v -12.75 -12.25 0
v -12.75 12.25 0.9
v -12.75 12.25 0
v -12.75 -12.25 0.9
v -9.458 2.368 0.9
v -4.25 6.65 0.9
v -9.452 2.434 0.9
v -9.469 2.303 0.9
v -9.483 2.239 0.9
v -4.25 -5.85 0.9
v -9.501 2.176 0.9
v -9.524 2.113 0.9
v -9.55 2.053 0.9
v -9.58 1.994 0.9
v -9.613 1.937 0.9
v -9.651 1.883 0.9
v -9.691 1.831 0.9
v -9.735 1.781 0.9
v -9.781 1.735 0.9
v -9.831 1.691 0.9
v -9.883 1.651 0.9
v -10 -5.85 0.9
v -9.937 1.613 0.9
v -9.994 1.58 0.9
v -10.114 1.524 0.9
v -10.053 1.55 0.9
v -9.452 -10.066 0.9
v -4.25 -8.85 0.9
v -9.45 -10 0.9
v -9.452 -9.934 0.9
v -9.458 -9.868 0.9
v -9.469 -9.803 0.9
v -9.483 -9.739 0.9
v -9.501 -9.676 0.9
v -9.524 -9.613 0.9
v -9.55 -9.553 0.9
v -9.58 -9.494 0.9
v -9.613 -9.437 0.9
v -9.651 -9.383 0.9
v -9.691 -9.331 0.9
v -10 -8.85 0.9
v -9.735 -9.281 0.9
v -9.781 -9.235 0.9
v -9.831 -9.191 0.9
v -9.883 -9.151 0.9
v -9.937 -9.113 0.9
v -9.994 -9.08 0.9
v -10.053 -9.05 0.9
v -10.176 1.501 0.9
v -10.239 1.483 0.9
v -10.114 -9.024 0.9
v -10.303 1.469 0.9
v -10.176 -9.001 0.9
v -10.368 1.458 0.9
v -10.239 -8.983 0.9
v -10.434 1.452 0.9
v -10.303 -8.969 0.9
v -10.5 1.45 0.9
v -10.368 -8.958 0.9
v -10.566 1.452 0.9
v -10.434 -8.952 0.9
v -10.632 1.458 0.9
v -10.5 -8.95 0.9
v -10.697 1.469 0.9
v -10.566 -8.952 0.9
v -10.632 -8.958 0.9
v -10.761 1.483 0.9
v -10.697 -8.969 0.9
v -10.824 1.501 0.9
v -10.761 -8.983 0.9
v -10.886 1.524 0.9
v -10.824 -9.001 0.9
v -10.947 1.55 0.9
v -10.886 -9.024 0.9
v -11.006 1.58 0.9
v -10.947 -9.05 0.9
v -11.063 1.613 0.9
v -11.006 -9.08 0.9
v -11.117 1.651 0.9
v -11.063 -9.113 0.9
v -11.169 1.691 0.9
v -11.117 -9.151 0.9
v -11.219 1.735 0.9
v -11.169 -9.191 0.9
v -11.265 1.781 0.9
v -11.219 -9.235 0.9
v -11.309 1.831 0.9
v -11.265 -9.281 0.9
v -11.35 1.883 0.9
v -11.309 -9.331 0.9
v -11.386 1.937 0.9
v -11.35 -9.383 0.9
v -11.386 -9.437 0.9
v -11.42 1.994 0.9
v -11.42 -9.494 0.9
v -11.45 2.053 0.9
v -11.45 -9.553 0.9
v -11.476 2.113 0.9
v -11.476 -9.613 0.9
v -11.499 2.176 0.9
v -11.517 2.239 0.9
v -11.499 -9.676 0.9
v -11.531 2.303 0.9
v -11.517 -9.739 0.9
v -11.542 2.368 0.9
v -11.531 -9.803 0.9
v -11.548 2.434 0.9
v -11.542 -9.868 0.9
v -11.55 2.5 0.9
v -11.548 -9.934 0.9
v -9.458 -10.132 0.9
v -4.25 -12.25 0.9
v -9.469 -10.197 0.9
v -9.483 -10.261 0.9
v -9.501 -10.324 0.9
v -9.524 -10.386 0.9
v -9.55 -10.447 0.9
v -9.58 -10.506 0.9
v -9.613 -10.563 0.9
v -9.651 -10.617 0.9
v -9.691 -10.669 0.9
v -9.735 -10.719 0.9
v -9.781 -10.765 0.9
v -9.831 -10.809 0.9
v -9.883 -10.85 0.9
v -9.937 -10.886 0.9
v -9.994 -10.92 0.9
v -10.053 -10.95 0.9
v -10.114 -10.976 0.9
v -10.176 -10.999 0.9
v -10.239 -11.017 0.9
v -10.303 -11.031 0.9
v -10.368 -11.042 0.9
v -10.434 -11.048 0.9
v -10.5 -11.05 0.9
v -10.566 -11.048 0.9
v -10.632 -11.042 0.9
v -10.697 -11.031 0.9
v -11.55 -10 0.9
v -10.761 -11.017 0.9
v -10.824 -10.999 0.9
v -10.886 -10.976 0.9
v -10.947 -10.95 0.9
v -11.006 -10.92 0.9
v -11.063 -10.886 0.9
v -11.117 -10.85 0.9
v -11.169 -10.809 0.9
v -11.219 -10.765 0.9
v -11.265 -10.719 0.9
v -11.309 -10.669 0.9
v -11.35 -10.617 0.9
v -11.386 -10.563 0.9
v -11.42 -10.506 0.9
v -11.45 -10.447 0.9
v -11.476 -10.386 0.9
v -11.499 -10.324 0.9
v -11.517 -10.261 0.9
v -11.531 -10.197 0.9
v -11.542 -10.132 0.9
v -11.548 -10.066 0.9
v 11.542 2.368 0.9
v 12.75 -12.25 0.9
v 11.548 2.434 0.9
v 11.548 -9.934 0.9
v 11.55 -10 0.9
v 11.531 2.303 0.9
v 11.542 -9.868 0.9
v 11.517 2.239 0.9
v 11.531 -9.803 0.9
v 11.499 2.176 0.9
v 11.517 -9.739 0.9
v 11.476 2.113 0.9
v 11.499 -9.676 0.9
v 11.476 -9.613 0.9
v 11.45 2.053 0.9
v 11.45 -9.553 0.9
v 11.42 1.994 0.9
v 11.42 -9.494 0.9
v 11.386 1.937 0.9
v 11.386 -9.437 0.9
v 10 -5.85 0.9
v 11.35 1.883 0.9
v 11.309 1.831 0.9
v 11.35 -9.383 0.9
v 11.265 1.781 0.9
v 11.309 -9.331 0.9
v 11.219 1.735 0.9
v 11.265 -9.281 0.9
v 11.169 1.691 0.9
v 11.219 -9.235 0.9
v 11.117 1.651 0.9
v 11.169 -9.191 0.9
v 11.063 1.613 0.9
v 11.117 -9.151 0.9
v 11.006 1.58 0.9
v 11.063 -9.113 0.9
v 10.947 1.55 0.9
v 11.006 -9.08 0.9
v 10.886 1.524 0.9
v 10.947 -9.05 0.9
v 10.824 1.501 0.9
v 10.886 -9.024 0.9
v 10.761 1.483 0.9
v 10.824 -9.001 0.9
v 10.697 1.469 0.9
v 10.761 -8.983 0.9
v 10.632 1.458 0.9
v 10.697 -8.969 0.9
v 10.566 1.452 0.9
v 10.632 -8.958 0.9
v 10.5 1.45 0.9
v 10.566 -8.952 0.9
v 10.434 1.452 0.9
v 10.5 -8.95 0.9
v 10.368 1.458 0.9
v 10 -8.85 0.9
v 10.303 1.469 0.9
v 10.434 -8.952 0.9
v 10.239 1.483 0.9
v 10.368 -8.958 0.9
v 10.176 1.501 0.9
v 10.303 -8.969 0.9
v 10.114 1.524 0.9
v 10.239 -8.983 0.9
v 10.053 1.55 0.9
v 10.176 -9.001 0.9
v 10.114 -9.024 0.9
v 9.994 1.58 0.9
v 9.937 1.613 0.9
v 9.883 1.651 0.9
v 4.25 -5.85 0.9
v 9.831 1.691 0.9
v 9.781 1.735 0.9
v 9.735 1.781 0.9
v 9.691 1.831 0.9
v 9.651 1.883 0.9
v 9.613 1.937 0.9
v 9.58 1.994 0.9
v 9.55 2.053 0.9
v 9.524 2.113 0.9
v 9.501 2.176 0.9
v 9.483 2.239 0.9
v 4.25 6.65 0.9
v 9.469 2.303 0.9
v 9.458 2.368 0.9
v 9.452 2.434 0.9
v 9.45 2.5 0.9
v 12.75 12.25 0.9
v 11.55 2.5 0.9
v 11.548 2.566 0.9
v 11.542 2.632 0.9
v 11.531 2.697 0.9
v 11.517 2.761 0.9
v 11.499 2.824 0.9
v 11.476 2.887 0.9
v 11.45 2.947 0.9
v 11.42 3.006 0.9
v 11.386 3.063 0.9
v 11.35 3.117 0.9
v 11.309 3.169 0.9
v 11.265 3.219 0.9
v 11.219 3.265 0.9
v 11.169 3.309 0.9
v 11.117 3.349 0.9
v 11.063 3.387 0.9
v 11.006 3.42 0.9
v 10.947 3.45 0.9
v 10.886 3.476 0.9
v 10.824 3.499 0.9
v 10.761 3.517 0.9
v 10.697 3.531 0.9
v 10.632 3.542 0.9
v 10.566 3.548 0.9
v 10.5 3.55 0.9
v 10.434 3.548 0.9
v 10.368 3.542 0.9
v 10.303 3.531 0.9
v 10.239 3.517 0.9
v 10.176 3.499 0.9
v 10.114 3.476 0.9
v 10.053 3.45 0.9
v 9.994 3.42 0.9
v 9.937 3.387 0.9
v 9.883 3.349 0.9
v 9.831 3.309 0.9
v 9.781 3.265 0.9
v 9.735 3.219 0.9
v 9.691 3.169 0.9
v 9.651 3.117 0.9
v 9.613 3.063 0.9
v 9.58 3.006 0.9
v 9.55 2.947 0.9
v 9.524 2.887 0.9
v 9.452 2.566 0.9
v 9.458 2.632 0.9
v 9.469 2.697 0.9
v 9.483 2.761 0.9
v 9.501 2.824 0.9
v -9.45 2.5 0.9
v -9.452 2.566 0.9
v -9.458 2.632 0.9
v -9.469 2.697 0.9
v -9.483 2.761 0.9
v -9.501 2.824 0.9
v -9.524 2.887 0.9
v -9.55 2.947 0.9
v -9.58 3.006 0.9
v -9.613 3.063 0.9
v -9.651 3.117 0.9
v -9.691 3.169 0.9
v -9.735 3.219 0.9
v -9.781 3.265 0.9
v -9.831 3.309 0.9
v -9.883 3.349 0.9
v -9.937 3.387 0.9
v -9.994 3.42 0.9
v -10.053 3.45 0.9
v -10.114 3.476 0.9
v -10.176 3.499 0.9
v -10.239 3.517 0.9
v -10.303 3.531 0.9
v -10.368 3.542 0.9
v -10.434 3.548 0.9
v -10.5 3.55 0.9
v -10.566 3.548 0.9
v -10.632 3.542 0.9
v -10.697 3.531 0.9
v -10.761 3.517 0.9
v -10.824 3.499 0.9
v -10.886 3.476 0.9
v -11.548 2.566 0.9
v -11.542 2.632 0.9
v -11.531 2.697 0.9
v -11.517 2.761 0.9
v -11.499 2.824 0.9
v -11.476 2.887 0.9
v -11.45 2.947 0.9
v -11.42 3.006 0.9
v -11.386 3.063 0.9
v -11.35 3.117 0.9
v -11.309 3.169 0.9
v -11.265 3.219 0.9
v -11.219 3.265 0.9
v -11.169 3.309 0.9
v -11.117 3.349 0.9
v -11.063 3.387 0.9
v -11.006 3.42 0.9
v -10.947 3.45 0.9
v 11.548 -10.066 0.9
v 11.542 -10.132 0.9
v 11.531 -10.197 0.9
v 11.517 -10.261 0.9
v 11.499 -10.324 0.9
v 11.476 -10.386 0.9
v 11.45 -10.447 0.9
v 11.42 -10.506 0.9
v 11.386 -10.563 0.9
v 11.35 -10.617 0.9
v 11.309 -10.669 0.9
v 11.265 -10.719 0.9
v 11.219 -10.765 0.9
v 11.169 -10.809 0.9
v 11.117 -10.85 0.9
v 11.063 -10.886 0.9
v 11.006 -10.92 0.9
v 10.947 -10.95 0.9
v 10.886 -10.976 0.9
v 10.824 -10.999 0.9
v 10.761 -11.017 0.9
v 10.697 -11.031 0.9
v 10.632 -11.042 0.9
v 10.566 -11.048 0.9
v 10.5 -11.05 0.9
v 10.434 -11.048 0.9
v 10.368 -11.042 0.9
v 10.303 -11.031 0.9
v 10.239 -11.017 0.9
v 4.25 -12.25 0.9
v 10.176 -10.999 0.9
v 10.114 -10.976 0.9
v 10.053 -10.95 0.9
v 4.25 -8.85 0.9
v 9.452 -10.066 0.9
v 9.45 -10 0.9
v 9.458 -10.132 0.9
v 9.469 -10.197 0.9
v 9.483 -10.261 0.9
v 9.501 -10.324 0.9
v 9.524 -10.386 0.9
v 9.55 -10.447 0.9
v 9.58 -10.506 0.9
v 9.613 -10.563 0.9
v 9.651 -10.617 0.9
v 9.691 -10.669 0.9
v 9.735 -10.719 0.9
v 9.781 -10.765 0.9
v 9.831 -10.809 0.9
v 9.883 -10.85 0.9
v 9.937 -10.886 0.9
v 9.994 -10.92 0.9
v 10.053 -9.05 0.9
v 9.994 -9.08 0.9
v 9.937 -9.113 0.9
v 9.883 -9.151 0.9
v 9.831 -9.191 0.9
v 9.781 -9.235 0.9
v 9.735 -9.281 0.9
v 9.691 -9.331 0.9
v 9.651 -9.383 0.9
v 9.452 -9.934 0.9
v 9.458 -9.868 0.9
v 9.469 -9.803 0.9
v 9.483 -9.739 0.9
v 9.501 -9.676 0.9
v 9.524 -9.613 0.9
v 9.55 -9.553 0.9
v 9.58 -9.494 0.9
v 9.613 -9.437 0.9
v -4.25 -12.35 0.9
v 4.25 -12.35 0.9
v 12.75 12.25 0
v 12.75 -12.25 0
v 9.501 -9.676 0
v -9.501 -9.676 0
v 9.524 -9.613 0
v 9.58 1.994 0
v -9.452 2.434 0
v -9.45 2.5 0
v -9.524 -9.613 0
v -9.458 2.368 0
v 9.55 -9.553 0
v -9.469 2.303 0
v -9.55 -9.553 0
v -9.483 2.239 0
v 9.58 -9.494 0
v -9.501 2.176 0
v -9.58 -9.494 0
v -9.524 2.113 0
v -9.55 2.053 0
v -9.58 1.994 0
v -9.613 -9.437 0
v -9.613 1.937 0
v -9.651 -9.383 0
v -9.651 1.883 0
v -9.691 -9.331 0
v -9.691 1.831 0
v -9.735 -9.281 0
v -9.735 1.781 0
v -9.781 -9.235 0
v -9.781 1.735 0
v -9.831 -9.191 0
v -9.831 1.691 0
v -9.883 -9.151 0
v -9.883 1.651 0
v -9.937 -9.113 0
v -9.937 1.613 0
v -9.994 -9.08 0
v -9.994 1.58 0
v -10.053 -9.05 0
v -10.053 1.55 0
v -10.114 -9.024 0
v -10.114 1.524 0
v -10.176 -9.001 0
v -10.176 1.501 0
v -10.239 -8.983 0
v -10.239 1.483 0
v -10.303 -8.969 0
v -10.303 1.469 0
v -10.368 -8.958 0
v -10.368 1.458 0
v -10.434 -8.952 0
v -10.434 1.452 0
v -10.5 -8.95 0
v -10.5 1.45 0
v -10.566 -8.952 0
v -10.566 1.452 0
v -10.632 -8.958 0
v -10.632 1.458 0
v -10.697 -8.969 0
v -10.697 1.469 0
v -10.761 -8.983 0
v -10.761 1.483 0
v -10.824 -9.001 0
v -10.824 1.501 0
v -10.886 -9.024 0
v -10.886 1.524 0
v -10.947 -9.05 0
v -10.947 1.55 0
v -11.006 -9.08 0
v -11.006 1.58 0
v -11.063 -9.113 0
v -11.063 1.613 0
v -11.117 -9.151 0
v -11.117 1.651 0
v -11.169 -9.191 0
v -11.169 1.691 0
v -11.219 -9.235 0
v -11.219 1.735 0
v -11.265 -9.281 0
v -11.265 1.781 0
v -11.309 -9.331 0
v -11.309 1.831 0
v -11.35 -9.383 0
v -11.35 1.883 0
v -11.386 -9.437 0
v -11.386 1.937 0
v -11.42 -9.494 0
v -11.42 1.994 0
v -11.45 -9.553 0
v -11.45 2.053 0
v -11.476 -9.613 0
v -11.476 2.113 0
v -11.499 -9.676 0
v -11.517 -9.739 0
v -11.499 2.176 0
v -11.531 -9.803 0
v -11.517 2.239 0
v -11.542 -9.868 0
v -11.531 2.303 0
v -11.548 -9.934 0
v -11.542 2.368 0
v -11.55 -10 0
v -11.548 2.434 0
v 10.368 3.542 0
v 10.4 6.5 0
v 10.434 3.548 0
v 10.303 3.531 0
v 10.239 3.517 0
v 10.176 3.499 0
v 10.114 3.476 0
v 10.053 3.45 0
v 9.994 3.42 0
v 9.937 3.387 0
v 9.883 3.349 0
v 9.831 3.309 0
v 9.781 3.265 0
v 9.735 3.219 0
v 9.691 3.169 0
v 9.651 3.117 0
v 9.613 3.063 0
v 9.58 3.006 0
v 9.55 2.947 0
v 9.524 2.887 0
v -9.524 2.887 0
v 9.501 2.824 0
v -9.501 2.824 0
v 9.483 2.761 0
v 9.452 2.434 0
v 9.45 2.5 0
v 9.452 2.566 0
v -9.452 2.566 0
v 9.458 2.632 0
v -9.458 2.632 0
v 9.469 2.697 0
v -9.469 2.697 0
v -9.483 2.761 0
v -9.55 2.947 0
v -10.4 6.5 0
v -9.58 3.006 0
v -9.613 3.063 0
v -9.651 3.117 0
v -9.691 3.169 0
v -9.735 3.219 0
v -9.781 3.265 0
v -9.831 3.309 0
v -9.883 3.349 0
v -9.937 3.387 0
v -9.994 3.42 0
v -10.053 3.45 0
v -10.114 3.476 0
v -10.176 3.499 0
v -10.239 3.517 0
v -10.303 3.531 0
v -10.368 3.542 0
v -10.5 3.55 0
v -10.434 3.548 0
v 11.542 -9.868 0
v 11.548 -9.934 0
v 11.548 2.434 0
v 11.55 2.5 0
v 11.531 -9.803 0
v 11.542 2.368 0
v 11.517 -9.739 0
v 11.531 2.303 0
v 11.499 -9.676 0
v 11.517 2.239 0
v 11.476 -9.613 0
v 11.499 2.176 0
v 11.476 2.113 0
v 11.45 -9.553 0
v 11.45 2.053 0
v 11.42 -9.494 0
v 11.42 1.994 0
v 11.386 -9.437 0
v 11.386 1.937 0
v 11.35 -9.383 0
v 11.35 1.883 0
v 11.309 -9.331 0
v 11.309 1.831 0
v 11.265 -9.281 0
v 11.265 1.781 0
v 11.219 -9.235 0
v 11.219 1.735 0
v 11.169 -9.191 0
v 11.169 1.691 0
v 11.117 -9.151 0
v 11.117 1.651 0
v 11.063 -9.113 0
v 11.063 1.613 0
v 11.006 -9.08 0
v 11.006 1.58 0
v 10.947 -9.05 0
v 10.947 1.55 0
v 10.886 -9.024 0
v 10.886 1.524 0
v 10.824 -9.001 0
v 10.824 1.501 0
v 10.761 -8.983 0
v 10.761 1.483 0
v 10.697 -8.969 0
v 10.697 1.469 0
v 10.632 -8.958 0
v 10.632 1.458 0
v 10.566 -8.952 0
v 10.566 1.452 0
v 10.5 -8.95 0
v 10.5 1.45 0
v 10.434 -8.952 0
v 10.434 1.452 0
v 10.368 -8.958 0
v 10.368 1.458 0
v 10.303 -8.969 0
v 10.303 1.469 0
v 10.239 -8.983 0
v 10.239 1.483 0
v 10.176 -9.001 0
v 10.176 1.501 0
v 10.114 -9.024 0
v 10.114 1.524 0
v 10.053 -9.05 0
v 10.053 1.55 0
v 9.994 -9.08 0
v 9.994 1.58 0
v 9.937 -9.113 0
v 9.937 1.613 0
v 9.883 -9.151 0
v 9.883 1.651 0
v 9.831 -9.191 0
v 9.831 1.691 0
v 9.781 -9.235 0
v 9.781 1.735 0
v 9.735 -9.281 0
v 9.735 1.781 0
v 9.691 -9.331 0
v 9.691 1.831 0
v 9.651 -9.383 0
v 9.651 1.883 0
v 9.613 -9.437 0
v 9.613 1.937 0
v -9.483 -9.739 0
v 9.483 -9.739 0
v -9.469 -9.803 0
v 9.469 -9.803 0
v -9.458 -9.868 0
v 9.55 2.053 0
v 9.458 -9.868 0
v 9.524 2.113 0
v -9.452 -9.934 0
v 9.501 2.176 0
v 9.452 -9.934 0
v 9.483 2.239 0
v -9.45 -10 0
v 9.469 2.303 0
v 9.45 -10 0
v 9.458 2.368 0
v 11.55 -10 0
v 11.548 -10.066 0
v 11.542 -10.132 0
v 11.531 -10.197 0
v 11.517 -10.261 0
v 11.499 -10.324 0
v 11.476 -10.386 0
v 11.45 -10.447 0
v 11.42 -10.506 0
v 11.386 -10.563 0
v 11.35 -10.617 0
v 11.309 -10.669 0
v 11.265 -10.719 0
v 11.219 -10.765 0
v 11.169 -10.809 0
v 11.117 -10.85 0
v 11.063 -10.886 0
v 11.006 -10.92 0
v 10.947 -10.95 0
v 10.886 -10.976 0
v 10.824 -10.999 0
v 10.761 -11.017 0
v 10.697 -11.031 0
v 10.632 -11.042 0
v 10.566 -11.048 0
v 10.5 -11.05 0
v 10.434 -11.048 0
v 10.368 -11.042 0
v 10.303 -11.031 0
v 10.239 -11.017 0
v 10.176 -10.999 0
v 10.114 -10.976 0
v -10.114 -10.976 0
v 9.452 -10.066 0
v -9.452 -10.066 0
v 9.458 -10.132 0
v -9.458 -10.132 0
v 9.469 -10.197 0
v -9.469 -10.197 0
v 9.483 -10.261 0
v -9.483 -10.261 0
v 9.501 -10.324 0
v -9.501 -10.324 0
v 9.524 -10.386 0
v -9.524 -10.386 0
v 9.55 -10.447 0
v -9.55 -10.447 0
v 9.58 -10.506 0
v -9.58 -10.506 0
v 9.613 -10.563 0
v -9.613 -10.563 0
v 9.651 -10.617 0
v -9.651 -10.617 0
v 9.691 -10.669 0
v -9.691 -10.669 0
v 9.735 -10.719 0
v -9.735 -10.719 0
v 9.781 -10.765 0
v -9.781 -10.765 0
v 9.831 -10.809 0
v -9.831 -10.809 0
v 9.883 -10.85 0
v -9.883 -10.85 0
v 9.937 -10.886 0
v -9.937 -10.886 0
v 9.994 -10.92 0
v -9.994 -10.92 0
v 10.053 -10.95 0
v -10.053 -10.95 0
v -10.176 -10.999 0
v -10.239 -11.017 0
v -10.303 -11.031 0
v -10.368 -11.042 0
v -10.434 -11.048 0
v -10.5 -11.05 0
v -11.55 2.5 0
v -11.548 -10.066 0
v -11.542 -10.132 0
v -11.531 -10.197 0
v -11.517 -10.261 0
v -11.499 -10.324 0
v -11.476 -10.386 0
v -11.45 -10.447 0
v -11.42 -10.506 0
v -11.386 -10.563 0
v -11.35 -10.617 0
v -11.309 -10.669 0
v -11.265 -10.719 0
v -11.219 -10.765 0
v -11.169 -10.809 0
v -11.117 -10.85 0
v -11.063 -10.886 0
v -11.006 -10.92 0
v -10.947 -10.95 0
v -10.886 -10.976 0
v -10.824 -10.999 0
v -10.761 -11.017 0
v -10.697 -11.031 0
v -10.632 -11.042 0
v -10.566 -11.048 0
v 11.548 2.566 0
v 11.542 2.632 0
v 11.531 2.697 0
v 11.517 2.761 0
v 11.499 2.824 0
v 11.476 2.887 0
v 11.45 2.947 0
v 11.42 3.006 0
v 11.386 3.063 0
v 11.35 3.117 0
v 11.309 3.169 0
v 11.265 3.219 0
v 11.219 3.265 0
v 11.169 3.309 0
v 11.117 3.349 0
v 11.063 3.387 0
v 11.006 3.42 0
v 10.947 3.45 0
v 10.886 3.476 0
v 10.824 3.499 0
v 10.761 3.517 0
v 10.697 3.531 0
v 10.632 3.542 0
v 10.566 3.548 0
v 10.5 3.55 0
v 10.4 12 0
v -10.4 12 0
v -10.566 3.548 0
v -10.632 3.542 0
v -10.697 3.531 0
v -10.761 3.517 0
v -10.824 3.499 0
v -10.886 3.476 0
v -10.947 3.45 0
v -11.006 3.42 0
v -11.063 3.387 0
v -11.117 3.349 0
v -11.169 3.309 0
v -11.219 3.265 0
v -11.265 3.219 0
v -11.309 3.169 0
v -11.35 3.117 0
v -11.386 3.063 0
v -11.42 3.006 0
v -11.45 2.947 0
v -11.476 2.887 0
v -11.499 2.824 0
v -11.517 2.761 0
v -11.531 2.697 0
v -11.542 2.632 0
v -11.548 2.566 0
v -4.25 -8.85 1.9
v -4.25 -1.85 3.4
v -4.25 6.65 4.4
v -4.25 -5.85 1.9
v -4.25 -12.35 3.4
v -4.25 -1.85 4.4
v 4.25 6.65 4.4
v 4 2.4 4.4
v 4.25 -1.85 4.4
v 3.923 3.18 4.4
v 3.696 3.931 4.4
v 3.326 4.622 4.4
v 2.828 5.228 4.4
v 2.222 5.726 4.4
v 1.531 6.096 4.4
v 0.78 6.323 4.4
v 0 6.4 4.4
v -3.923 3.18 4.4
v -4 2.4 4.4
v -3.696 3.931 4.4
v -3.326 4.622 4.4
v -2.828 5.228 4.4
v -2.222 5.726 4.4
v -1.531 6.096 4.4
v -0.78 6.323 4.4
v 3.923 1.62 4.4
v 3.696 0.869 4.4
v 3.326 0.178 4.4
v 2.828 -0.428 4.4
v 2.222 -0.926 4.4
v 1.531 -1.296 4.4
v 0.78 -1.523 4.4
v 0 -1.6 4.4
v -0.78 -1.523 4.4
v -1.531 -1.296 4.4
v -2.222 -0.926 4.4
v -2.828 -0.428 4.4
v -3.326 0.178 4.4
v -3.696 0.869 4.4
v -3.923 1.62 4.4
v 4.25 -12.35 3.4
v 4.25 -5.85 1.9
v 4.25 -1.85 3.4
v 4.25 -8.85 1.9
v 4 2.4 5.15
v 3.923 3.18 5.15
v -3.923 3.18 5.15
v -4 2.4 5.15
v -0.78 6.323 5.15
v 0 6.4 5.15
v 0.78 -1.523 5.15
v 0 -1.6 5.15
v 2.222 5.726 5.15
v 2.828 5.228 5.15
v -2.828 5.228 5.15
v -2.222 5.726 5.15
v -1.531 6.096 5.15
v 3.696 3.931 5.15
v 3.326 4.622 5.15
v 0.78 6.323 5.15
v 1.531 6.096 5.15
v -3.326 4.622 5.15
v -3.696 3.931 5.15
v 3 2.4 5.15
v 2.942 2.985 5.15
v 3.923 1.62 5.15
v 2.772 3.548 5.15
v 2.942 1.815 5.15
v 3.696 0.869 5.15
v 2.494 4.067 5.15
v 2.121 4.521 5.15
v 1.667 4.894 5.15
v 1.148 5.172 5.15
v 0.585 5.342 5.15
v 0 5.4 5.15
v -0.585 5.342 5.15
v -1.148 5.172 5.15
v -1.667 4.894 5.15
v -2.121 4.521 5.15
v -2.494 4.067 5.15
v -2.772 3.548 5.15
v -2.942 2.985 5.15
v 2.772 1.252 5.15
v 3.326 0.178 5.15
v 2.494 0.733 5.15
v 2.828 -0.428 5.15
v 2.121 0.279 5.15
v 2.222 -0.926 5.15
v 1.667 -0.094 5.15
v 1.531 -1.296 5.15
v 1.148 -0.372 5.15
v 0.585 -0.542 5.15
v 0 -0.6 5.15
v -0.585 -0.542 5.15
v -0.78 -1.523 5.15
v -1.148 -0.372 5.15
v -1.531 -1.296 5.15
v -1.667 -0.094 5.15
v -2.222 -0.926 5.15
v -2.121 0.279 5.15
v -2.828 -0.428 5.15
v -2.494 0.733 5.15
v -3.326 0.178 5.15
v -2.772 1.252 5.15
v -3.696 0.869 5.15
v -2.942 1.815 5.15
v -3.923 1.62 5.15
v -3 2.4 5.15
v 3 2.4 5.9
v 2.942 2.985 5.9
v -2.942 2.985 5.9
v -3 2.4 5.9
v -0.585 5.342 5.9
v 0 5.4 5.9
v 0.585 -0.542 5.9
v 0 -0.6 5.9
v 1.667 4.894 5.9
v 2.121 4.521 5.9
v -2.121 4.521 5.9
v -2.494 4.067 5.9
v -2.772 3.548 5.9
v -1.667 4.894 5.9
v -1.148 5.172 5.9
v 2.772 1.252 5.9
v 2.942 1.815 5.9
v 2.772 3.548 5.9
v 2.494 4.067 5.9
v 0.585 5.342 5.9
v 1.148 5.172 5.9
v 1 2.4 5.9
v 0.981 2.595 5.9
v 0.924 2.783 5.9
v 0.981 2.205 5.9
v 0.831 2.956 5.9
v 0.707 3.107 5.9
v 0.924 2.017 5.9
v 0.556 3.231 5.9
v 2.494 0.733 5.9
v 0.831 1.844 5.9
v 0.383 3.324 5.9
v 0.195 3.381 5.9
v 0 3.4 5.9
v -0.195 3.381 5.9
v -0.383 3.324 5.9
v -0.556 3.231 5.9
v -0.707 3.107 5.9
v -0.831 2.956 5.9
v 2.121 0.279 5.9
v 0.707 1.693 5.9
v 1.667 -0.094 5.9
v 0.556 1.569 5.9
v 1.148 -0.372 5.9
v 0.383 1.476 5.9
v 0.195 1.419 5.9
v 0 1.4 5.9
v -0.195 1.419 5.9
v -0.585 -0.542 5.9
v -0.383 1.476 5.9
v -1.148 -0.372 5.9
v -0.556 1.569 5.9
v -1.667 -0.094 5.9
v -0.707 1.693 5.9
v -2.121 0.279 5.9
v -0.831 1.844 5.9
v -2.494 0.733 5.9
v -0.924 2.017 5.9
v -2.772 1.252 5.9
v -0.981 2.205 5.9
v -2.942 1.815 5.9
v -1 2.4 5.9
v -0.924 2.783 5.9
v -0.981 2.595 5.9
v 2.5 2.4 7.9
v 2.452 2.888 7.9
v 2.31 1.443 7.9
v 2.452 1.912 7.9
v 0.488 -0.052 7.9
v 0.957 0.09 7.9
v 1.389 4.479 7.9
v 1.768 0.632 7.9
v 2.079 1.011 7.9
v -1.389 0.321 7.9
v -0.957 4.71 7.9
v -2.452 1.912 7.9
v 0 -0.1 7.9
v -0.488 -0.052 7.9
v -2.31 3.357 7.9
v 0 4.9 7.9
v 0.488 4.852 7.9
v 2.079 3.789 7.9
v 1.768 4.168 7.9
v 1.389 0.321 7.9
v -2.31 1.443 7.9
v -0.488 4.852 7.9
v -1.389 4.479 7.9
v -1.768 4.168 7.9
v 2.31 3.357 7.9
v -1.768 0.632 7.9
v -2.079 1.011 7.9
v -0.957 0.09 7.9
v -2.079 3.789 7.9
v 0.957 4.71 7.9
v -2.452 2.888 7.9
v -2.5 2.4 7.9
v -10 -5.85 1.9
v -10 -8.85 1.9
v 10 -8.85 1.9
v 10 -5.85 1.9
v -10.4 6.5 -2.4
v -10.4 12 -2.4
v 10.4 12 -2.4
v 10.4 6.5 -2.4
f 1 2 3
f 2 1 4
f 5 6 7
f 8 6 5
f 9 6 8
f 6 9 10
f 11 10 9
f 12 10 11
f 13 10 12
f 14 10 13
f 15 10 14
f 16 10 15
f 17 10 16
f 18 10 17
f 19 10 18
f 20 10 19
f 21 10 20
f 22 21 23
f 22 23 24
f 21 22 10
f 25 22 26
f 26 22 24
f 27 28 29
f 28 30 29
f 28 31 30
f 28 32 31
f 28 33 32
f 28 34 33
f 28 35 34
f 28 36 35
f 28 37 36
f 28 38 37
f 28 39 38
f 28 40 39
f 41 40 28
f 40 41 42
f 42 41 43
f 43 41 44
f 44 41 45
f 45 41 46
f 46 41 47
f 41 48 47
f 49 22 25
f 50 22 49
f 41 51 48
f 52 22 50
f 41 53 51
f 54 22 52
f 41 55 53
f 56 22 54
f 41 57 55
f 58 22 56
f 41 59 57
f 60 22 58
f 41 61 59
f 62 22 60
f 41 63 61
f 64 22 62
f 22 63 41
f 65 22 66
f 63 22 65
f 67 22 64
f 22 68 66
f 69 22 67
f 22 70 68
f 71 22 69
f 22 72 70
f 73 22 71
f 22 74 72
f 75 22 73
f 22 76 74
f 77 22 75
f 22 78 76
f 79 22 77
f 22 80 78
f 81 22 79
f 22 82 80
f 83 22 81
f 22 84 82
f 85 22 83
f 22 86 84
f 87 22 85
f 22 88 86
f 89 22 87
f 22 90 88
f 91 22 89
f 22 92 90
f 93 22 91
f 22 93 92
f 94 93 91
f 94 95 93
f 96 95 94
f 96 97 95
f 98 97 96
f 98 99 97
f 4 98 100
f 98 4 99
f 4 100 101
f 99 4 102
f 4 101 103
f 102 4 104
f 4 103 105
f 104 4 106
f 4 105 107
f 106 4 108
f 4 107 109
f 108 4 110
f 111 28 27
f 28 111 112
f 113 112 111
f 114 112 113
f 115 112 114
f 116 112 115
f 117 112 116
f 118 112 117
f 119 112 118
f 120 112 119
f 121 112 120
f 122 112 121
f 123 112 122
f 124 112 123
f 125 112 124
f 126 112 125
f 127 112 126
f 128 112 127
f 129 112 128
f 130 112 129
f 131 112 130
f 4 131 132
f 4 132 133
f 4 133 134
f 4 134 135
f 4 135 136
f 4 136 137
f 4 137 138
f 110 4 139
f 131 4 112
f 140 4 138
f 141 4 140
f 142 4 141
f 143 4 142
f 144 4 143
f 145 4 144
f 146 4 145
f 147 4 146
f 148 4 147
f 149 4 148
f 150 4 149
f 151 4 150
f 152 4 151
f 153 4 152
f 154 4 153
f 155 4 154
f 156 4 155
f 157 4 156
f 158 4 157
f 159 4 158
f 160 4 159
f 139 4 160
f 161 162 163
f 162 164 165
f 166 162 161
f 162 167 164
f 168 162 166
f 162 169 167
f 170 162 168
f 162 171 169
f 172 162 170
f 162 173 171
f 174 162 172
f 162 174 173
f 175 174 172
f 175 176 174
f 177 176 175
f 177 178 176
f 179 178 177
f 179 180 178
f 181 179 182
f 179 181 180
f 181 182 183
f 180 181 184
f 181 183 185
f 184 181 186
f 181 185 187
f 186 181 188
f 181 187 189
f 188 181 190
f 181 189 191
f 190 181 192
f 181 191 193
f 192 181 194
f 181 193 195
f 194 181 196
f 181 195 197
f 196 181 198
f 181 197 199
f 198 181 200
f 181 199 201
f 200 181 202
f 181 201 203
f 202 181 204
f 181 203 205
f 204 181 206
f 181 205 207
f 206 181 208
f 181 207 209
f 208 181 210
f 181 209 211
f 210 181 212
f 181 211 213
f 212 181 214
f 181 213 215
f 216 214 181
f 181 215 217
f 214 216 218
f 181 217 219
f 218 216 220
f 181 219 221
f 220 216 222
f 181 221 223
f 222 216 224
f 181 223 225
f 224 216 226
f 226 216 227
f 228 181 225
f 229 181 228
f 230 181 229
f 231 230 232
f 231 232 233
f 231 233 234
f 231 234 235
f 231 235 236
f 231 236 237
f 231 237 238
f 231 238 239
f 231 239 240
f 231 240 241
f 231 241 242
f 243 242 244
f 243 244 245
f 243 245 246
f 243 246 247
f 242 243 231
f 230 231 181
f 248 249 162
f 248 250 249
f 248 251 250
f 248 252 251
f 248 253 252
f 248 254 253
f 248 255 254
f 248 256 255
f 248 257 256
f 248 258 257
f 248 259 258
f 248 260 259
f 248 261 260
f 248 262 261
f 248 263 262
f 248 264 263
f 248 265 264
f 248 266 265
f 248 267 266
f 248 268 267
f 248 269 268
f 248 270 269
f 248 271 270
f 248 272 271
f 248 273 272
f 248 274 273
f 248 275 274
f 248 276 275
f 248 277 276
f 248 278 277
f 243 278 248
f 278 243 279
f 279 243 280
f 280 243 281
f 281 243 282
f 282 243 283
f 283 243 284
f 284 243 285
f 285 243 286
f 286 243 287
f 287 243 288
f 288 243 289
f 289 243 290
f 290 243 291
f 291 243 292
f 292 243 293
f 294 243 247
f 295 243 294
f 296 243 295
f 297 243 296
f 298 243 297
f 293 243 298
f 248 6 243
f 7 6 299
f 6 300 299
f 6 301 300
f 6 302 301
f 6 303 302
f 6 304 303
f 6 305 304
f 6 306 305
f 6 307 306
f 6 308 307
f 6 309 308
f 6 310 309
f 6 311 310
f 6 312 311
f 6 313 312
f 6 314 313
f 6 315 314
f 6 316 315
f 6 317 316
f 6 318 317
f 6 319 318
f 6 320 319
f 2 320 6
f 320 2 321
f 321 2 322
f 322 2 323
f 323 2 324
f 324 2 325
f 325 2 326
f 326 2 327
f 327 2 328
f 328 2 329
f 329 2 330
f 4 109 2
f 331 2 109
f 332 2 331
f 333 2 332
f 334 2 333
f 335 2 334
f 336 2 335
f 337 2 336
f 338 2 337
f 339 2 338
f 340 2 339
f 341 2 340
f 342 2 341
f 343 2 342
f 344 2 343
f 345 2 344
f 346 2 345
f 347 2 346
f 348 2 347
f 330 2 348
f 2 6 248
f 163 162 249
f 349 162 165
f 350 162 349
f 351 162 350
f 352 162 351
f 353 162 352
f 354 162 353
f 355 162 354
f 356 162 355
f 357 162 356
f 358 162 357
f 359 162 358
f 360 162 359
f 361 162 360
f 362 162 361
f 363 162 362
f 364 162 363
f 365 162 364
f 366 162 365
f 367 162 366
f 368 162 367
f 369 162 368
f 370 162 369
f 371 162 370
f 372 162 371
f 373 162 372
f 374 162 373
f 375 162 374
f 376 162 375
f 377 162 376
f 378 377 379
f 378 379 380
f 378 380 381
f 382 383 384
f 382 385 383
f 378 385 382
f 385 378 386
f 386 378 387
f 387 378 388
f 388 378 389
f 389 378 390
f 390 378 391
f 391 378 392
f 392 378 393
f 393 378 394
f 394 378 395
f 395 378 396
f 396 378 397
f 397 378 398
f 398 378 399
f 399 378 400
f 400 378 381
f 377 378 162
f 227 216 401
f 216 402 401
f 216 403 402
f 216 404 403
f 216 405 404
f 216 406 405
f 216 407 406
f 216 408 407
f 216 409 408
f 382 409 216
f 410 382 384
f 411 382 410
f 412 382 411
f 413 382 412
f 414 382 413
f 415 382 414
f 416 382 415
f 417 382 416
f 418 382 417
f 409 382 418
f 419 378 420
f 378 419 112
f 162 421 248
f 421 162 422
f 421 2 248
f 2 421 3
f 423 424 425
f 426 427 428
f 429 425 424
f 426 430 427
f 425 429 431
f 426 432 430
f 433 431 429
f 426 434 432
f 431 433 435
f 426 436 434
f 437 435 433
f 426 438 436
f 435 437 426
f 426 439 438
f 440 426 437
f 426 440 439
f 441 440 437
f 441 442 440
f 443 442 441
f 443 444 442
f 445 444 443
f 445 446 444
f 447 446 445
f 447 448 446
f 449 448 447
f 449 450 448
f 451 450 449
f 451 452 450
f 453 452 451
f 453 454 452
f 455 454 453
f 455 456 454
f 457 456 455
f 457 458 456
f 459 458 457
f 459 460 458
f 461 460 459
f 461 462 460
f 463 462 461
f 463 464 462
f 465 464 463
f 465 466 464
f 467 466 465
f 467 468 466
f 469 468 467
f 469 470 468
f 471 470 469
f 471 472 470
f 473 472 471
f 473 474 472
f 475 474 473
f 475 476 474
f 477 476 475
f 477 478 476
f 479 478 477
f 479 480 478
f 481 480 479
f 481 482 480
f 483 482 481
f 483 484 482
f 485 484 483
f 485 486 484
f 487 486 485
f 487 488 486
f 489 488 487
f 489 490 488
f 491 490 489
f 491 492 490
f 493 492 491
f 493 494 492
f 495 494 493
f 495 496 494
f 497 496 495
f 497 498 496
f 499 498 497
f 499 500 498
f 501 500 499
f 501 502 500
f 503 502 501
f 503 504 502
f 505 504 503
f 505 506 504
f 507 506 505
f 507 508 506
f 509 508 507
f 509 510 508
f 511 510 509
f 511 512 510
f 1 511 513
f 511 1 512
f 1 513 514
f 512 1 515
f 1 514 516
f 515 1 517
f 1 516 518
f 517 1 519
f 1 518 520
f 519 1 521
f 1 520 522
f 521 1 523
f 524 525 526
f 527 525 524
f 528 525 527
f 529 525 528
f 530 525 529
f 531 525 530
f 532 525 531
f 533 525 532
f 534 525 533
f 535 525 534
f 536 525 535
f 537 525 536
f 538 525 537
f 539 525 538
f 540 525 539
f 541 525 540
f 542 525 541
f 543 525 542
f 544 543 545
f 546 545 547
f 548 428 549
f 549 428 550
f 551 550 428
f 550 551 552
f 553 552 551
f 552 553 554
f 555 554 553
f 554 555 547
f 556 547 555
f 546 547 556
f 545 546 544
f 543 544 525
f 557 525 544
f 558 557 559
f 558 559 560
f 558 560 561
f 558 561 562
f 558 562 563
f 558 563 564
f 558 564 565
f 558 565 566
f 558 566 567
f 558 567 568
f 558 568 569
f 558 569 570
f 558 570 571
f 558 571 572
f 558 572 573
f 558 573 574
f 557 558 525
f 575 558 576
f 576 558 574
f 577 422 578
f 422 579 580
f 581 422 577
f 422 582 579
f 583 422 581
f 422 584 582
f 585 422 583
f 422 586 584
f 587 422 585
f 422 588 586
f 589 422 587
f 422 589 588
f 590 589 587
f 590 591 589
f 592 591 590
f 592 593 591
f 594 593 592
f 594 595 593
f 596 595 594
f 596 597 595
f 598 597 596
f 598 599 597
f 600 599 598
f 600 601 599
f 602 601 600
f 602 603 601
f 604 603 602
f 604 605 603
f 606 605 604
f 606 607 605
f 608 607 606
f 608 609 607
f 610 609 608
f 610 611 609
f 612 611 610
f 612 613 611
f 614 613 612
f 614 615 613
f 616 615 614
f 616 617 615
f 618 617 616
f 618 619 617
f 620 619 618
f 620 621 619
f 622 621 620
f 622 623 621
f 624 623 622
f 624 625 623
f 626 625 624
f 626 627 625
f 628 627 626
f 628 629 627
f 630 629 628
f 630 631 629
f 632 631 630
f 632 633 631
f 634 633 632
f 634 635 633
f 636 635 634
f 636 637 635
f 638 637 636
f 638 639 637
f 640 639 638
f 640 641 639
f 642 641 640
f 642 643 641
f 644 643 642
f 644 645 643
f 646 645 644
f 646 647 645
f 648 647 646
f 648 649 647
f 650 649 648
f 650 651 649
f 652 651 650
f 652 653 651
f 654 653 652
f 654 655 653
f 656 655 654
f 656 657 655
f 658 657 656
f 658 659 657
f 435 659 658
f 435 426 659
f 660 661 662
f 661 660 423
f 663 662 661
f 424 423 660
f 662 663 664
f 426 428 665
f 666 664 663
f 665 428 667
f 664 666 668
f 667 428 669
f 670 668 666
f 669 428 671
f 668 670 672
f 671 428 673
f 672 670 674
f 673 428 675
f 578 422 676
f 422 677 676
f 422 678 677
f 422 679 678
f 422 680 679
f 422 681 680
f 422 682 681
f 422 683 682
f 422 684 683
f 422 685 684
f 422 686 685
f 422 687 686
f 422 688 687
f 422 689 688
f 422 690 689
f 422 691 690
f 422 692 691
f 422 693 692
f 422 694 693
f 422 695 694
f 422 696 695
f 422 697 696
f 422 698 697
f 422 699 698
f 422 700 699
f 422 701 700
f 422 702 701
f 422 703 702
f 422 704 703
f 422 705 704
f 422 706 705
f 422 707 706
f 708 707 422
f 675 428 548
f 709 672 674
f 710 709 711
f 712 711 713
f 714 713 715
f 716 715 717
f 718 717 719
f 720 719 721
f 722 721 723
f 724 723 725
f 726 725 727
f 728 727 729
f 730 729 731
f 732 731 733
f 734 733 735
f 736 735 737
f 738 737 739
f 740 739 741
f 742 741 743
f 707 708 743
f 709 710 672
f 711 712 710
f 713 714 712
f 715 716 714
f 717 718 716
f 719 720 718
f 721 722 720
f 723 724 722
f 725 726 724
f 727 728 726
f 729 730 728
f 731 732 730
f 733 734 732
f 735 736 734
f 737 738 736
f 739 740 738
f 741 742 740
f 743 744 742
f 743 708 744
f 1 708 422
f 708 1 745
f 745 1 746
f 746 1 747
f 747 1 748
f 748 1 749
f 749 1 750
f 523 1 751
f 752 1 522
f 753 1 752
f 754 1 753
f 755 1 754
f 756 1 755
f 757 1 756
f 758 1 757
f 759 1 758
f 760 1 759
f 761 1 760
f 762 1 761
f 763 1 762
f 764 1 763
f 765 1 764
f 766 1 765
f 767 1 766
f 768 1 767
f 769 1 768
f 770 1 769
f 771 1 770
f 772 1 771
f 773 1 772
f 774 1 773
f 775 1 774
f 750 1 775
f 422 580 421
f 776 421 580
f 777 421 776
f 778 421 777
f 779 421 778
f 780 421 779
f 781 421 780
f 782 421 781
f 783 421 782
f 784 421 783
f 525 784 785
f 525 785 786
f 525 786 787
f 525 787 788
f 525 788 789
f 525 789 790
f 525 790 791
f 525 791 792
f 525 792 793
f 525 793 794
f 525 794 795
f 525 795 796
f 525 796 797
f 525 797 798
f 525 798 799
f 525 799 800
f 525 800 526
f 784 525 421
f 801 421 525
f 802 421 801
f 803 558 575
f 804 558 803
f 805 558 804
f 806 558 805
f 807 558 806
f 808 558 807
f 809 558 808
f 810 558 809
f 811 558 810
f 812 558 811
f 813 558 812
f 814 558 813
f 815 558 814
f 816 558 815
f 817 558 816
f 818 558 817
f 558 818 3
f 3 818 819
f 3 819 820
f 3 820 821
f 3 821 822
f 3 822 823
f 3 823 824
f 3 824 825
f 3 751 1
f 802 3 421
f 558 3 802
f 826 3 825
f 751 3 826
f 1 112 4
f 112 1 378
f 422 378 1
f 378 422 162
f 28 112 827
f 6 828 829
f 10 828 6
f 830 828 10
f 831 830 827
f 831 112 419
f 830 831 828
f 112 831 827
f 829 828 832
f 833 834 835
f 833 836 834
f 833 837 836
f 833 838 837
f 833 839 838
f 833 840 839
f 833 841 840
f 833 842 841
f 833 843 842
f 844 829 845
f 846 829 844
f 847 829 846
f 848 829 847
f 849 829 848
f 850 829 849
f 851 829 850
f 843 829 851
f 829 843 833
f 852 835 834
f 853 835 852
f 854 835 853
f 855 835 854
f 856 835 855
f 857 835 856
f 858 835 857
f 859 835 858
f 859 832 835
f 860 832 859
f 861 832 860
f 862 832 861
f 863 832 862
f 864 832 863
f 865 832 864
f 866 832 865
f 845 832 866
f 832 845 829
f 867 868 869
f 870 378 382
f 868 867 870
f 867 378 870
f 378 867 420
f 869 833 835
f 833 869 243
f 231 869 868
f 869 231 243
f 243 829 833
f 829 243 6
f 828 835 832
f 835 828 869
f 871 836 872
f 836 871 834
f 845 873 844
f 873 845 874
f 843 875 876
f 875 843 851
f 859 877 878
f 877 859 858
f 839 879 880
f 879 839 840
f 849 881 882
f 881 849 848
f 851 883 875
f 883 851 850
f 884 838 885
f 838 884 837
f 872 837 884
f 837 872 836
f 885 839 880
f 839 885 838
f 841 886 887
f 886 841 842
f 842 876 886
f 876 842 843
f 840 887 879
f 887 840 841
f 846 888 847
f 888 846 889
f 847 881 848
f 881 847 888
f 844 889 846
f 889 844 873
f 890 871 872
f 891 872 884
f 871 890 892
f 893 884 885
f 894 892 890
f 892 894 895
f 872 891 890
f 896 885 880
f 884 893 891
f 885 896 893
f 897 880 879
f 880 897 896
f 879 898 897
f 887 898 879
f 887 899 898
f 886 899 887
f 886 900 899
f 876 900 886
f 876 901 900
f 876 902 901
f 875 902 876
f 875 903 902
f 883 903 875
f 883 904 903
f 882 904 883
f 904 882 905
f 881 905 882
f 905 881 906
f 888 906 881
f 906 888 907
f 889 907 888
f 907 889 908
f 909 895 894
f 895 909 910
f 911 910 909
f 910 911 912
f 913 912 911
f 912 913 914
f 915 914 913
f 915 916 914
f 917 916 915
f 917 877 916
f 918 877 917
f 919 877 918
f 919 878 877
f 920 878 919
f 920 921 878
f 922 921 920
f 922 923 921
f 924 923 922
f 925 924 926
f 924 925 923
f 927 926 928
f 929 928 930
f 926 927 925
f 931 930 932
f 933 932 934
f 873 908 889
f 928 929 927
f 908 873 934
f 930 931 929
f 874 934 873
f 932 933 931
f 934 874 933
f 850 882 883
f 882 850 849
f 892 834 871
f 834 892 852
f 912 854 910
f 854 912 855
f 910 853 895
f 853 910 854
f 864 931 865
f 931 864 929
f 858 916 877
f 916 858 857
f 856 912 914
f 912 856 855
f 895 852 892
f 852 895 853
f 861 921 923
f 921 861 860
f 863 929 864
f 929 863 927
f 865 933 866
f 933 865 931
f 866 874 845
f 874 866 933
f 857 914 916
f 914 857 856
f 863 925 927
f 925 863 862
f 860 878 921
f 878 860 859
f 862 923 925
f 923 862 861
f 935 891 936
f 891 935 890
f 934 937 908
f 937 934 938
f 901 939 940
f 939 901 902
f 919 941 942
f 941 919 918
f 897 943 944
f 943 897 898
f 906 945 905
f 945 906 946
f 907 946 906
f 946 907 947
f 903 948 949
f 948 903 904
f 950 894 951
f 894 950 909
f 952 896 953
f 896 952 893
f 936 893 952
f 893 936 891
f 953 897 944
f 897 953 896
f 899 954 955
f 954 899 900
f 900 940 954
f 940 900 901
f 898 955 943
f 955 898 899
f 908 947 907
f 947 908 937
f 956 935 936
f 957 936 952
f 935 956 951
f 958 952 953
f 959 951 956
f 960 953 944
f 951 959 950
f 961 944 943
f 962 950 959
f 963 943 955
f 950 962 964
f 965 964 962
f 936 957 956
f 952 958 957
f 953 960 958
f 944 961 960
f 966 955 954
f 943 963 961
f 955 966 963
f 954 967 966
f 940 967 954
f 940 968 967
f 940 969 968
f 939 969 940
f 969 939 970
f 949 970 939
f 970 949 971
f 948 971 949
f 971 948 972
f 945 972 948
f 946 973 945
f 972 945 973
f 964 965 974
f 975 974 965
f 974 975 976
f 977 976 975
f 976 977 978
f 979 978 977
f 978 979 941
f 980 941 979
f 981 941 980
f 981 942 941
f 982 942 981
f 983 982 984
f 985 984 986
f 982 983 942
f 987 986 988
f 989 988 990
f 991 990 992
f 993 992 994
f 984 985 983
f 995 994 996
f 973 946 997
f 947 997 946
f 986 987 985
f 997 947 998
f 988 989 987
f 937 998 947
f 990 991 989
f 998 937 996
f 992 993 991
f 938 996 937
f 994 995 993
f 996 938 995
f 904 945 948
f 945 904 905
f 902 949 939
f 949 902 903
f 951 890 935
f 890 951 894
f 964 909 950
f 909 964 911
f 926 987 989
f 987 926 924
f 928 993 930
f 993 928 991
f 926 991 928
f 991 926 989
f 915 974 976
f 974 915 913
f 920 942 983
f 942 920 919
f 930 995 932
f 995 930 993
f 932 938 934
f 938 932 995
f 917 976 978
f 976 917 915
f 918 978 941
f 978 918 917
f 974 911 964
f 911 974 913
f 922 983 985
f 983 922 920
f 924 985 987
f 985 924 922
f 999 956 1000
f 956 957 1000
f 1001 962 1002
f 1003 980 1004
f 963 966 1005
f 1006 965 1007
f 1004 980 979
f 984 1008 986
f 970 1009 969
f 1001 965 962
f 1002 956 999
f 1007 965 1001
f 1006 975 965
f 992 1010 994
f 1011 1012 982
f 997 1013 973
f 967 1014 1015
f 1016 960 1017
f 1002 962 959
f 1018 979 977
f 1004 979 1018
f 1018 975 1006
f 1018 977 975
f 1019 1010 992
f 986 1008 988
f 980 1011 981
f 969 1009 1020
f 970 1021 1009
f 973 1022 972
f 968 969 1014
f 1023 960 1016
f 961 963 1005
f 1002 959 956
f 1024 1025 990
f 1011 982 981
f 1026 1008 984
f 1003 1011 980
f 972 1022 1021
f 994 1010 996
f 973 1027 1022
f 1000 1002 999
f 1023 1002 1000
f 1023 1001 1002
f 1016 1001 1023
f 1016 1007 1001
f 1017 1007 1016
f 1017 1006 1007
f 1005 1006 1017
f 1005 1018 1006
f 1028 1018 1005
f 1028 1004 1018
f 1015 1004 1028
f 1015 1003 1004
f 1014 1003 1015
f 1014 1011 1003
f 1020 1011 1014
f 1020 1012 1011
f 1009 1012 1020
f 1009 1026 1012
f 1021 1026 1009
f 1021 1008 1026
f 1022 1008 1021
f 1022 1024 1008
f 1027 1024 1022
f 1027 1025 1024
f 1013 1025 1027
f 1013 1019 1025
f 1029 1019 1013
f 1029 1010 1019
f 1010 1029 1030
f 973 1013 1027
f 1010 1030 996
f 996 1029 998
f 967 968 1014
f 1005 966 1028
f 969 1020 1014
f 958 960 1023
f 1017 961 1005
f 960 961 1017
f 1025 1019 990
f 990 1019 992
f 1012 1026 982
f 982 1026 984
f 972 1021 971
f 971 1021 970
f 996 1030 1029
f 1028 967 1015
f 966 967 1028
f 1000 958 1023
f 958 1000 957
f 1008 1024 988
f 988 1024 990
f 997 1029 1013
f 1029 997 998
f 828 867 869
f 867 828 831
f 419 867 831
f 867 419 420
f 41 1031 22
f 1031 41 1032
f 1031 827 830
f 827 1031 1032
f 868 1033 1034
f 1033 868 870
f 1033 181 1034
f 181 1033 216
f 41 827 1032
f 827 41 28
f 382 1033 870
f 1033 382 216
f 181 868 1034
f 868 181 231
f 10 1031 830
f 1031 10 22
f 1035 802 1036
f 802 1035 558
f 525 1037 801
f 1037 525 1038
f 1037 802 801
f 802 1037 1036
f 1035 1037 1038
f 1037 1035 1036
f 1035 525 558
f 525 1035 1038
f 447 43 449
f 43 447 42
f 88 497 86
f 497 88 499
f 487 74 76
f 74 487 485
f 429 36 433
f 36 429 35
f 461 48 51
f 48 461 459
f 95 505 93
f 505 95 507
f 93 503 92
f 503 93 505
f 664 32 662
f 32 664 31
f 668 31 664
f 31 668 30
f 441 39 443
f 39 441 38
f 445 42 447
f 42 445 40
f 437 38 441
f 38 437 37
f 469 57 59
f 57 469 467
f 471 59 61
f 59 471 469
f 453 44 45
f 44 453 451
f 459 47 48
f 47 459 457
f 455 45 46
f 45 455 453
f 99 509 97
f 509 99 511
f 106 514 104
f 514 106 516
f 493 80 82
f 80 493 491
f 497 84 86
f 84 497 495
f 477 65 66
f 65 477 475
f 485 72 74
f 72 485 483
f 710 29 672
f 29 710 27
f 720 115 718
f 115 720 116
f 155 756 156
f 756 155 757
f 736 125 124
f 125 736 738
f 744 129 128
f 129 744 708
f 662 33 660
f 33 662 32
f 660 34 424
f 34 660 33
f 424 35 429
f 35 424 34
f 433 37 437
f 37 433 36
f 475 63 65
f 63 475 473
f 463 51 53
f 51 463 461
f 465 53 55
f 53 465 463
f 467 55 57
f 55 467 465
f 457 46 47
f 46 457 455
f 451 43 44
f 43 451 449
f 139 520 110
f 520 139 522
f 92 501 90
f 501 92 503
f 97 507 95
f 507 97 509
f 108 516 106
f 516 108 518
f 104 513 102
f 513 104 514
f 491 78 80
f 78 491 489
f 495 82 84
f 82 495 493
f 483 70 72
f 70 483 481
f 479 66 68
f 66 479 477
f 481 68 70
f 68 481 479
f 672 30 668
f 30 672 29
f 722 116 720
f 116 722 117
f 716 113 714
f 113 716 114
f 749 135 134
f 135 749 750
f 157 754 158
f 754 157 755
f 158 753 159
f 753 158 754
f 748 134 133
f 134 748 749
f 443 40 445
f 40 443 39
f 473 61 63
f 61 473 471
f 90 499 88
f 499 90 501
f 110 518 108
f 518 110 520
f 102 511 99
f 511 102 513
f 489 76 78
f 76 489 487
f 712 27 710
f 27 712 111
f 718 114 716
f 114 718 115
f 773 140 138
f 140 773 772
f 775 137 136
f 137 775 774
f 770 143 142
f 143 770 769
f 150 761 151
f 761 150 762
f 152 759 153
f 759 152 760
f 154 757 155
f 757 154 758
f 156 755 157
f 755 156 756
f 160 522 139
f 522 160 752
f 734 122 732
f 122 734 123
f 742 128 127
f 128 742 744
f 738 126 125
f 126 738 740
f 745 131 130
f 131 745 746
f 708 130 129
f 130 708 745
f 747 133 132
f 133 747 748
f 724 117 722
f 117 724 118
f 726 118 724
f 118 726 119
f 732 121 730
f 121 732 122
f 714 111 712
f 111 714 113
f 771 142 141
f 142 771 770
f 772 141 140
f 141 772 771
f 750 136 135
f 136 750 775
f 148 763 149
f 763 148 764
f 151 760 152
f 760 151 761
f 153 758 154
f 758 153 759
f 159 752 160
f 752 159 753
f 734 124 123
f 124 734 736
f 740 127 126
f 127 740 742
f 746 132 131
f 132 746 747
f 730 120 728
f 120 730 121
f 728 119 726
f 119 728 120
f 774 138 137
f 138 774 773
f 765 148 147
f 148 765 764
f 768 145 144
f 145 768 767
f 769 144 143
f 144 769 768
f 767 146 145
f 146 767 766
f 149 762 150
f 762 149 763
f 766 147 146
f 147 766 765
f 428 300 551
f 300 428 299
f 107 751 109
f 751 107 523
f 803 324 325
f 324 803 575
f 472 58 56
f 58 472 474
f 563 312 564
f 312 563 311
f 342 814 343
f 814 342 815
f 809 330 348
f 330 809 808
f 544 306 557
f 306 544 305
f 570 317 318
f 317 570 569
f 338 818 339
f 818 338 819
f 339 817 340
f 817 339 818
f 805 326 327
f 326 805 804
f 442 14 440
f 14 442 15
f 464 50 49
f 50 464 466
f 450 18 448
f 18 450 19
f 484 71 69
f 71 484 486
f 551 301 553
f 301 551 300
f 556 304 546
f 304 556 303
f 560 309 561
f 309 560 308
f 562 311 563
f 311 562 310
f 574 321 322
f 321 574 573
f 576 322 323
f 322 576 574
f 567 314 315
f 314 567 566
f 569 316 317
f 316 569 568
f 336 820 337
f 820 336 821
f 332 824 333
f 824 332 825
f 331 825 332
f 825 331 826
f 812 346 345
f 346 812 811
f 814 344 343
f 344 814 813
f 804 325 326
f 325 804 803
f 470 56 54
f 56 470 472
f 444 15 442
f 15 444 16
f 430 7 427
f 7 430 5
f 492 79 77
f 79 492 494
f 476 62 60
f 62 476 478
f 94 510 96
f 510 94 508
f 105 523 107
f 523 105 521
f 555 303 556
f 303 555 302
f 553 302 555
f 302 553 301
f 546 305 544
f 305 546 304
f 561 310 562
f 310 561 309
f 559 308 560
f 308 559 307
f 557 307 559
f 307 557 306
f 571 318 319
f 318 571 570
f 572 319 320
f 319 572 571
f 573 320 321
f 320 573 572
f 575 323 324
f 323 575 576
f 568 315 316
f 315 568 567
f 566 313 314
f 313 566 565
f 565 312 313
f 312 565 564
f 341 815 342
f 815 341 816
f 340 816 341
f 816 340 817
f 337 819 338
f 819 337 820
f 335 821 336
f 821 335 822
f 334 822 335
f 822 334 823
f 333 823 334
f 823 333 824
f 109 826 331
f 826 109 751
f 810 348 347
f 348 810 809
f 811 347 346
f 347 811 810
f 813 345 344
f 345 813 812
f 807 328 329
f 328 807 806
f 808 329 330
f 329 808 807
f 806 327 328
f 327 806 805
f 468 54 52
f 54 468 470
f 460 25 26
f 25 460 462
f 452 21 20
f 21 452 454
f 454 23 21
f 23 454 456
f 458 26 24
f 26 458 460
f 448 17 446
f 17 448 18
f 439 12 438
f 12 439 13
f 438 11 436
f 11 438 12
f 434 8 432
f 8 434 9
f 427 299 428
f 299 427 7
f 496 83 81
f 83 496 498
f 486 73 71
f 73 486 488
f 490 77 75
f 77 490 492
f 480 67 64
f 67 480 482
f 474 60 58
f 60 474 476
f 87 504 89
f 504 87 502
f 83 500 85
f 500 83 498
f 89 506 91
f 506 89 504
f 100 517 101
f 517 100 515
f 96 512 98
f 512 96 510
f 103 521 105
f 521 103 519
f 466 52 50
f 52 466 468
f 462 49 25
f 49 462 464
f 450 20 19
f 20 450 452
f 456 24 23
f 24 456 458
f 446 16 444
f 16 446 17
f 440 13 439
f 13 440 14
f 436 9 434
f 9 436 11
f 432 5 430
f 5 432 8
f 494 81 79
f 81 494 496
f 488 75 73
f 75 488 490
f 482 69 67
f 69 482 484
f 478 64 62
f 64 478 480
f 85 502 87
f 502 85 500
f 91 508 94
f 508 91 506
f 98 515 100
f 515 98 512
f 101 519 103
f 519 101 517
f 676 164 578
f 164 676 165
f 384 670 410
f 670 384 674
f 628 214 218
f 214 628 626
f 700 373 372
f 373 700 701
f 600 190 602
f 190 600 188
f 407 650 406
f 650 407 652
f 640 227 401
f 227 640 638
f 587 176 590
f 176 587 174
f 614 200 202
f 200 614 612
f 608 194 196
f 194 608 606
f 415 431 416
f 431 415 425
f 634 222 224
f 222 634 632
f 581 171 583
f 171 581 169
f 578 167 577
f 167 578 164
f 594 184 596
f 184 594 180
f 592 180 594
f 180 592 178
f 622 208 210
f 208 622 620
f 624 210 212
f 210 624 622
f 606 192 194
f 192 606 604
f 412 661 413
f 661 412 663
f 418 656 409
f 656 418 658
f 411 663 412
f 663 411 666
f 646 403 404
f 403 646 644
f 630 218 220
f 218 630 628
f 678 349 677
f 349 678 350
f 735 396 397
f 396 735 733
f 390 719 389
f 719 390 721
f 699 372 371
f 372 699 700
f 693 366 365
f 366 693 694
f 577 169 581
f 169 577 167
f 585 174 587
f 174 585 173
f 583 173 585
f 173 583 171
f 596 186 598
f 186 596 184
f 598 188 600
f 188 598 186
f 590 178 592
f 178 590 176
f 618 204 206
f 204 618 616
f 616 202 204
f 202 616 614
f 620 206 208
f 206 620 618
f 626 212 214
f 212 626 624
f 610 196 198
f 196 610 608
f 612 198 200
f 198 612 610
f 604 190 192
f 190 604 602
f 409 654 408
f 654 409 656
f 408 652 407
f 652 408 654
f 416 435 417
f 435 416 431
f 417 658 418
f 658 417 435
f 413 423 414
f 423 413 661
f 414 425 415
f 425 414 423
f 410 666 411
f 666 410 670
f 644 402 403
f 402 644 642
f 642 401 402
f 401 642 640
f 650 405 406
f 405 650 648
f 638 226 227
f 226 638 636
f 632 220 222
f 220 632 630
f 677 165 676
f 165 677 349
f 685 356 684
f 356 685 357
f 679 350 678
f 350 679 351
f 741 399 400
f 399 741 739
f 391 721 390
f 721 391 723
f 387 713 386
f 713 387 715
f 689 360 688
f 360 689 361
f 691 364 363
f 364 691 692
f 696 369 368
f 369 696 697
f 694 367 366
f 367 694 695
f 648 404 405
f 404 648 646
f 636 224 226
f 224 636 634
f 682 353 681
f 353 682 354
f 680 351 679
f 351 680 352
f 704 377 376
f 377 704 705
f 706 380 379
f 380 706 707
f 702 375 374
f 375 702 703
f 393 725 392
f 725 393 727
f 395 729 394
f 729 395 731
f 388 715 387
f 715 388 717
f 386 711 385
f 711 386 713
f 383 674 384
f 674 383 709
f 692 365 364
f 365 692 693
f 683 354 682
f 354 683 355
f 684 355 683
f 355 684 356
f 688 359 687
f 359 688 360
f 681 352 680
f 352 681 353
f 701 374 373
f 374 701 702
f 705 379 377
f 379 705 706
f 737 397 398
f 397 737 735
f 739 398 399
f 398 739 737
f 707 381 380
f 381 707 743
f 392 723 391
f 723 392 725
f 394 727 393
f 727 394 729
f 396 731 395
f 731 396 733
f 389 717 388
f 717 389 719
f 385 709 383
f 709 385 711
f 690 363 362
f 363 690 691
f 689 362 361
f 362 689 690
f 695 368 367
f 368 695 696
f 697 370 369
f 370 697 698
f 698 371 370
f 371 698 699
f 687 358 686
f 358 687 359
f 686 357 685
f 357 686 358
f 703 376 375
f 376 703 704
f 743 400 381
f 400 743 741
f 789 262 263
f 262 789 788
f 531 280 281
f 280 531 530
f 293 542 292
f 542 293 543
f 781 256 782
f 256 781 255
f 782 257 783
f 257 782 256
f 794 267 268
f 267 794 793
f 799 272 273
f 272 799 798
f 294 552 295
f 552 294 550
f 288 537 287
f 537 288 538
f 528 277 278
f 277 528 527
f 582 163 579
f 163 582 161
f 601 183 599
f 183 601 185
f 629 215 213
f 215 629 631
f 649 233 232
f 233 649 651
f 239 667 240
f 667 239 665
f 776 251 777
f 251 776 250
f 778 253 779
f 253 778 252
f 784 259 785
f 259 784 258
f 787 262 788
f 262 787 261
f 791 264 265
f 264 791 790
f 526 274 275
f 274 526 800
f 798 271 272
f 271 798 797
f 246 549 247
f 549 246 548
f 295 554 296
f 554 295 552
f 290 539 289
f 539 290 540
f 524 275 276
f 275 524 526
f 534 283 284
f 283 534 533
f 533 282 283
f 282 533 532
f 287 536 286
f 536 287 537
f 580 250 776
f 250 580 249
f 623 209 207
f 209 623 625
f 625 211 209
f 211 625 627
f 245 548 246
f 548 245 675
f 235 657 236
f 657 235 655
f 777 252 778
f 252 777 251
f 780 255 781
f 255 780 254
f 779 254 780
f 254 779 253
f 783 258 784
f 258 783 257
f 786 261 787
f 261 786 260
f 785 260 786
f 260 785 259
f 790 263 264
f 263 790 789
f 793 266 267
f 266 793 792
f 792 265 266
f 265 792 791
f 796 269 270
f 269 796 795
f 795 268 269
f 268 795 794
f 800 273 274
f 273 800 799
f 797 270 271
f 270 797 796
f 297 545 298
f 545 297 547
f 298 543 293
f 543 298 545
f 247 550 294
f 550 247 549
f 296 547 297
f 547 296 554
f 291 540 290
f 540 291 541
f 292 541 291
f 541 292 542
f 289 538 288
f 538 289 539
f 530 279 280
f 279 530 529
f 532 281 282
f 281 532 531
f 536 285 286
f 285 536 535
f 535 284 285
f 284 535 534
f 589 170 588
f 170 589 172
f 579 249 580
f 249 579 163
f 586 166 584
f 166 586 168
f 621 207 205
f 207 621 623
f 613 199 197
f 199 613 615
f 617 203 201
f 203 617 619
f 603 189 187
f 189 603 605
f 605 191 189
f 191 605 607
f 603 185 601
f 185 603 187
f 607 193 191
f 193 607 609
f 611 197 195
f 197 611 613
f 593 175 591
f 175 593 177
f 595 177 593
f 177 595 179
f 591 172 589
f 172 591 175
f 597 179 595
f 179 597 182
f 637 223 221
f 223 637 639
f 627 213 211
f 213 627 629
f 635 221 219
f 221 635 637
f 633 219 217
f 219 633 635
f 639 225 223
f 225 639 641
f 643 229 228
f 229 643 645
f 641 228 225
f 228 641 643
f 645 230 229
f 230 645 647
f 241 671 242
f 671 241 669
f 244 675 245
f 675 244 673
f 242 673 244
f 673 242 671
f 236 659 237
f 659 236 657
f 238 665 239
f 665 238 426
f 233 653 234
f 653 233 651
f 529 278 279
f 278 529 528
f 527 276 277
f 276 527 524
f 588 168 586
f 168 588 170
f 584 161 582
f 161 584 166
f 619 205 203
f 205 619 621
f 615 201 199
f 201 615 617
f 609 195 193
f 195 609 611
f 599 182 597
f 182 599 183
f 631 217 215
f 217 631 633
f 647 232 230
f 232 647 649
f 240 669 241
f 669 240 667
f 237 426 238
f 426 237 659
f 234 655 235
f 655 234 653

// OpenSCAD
$fn=100;


pi_camera();



module pi_camera(){
    difference(){
        union(){
            color("limegreen")
            translate([-25.5/2, -24.5/2, 0])
            cube([25.5, 24.5, 0.9]);
            
            
            //camera sensor
            color("darkgrey")
            translate([-8.5/2, -8.5/2+2.4, 0.9])
            cube([8.5, 8.5, 3.5]);
            
            color("darkgrey")
            translate([0, 2.4, 0.9+3.5])
            cylinder(d=8, h=0.75, $fn=32);
        
            color("darkgrey")
            translate([0, 2.4, 0.9+3.5+0.75])
            cylinder(d=6, h=0.75, $fn=32);
            
            color("darkgrey")
            translate([0, 2.4, 0.9+3.5+0.75+0.75])
            cylinder(d1=2, d2=5, h=2, $fn=32);
            
            //sensor connector
            color("orange")
            translate([-8.5/2, -8.5/2+2.4-10.5, 0.9])
            cube([8.5, 10.5, 2.5]);
            
            //led
            color("white")
            translate([-20/2, -8.5/2+2.4-7, 0.9])
            cube([20, 3, 1]);            
            
            
            //connector
            color("white")
            translate([-20.8/2, -5.5+24/2, -2.4])
            cube([20.8, 5.5, 2.4]);
            
            
    
        }
          
        translate([-21/2,-20/2,-1]) cylinder(d=2.1, h=3);
        translate([-21/2, 20/2-7.5,-1]) cylinder(d=2.1, h=3);
        translate([21/2,-20/2,-1]) cylinder(d=2.1, h=3);
        translate([21/2, 20/2-7.5,-1]) cylinder(d=2.1, h=3);
    }
    
    
}
